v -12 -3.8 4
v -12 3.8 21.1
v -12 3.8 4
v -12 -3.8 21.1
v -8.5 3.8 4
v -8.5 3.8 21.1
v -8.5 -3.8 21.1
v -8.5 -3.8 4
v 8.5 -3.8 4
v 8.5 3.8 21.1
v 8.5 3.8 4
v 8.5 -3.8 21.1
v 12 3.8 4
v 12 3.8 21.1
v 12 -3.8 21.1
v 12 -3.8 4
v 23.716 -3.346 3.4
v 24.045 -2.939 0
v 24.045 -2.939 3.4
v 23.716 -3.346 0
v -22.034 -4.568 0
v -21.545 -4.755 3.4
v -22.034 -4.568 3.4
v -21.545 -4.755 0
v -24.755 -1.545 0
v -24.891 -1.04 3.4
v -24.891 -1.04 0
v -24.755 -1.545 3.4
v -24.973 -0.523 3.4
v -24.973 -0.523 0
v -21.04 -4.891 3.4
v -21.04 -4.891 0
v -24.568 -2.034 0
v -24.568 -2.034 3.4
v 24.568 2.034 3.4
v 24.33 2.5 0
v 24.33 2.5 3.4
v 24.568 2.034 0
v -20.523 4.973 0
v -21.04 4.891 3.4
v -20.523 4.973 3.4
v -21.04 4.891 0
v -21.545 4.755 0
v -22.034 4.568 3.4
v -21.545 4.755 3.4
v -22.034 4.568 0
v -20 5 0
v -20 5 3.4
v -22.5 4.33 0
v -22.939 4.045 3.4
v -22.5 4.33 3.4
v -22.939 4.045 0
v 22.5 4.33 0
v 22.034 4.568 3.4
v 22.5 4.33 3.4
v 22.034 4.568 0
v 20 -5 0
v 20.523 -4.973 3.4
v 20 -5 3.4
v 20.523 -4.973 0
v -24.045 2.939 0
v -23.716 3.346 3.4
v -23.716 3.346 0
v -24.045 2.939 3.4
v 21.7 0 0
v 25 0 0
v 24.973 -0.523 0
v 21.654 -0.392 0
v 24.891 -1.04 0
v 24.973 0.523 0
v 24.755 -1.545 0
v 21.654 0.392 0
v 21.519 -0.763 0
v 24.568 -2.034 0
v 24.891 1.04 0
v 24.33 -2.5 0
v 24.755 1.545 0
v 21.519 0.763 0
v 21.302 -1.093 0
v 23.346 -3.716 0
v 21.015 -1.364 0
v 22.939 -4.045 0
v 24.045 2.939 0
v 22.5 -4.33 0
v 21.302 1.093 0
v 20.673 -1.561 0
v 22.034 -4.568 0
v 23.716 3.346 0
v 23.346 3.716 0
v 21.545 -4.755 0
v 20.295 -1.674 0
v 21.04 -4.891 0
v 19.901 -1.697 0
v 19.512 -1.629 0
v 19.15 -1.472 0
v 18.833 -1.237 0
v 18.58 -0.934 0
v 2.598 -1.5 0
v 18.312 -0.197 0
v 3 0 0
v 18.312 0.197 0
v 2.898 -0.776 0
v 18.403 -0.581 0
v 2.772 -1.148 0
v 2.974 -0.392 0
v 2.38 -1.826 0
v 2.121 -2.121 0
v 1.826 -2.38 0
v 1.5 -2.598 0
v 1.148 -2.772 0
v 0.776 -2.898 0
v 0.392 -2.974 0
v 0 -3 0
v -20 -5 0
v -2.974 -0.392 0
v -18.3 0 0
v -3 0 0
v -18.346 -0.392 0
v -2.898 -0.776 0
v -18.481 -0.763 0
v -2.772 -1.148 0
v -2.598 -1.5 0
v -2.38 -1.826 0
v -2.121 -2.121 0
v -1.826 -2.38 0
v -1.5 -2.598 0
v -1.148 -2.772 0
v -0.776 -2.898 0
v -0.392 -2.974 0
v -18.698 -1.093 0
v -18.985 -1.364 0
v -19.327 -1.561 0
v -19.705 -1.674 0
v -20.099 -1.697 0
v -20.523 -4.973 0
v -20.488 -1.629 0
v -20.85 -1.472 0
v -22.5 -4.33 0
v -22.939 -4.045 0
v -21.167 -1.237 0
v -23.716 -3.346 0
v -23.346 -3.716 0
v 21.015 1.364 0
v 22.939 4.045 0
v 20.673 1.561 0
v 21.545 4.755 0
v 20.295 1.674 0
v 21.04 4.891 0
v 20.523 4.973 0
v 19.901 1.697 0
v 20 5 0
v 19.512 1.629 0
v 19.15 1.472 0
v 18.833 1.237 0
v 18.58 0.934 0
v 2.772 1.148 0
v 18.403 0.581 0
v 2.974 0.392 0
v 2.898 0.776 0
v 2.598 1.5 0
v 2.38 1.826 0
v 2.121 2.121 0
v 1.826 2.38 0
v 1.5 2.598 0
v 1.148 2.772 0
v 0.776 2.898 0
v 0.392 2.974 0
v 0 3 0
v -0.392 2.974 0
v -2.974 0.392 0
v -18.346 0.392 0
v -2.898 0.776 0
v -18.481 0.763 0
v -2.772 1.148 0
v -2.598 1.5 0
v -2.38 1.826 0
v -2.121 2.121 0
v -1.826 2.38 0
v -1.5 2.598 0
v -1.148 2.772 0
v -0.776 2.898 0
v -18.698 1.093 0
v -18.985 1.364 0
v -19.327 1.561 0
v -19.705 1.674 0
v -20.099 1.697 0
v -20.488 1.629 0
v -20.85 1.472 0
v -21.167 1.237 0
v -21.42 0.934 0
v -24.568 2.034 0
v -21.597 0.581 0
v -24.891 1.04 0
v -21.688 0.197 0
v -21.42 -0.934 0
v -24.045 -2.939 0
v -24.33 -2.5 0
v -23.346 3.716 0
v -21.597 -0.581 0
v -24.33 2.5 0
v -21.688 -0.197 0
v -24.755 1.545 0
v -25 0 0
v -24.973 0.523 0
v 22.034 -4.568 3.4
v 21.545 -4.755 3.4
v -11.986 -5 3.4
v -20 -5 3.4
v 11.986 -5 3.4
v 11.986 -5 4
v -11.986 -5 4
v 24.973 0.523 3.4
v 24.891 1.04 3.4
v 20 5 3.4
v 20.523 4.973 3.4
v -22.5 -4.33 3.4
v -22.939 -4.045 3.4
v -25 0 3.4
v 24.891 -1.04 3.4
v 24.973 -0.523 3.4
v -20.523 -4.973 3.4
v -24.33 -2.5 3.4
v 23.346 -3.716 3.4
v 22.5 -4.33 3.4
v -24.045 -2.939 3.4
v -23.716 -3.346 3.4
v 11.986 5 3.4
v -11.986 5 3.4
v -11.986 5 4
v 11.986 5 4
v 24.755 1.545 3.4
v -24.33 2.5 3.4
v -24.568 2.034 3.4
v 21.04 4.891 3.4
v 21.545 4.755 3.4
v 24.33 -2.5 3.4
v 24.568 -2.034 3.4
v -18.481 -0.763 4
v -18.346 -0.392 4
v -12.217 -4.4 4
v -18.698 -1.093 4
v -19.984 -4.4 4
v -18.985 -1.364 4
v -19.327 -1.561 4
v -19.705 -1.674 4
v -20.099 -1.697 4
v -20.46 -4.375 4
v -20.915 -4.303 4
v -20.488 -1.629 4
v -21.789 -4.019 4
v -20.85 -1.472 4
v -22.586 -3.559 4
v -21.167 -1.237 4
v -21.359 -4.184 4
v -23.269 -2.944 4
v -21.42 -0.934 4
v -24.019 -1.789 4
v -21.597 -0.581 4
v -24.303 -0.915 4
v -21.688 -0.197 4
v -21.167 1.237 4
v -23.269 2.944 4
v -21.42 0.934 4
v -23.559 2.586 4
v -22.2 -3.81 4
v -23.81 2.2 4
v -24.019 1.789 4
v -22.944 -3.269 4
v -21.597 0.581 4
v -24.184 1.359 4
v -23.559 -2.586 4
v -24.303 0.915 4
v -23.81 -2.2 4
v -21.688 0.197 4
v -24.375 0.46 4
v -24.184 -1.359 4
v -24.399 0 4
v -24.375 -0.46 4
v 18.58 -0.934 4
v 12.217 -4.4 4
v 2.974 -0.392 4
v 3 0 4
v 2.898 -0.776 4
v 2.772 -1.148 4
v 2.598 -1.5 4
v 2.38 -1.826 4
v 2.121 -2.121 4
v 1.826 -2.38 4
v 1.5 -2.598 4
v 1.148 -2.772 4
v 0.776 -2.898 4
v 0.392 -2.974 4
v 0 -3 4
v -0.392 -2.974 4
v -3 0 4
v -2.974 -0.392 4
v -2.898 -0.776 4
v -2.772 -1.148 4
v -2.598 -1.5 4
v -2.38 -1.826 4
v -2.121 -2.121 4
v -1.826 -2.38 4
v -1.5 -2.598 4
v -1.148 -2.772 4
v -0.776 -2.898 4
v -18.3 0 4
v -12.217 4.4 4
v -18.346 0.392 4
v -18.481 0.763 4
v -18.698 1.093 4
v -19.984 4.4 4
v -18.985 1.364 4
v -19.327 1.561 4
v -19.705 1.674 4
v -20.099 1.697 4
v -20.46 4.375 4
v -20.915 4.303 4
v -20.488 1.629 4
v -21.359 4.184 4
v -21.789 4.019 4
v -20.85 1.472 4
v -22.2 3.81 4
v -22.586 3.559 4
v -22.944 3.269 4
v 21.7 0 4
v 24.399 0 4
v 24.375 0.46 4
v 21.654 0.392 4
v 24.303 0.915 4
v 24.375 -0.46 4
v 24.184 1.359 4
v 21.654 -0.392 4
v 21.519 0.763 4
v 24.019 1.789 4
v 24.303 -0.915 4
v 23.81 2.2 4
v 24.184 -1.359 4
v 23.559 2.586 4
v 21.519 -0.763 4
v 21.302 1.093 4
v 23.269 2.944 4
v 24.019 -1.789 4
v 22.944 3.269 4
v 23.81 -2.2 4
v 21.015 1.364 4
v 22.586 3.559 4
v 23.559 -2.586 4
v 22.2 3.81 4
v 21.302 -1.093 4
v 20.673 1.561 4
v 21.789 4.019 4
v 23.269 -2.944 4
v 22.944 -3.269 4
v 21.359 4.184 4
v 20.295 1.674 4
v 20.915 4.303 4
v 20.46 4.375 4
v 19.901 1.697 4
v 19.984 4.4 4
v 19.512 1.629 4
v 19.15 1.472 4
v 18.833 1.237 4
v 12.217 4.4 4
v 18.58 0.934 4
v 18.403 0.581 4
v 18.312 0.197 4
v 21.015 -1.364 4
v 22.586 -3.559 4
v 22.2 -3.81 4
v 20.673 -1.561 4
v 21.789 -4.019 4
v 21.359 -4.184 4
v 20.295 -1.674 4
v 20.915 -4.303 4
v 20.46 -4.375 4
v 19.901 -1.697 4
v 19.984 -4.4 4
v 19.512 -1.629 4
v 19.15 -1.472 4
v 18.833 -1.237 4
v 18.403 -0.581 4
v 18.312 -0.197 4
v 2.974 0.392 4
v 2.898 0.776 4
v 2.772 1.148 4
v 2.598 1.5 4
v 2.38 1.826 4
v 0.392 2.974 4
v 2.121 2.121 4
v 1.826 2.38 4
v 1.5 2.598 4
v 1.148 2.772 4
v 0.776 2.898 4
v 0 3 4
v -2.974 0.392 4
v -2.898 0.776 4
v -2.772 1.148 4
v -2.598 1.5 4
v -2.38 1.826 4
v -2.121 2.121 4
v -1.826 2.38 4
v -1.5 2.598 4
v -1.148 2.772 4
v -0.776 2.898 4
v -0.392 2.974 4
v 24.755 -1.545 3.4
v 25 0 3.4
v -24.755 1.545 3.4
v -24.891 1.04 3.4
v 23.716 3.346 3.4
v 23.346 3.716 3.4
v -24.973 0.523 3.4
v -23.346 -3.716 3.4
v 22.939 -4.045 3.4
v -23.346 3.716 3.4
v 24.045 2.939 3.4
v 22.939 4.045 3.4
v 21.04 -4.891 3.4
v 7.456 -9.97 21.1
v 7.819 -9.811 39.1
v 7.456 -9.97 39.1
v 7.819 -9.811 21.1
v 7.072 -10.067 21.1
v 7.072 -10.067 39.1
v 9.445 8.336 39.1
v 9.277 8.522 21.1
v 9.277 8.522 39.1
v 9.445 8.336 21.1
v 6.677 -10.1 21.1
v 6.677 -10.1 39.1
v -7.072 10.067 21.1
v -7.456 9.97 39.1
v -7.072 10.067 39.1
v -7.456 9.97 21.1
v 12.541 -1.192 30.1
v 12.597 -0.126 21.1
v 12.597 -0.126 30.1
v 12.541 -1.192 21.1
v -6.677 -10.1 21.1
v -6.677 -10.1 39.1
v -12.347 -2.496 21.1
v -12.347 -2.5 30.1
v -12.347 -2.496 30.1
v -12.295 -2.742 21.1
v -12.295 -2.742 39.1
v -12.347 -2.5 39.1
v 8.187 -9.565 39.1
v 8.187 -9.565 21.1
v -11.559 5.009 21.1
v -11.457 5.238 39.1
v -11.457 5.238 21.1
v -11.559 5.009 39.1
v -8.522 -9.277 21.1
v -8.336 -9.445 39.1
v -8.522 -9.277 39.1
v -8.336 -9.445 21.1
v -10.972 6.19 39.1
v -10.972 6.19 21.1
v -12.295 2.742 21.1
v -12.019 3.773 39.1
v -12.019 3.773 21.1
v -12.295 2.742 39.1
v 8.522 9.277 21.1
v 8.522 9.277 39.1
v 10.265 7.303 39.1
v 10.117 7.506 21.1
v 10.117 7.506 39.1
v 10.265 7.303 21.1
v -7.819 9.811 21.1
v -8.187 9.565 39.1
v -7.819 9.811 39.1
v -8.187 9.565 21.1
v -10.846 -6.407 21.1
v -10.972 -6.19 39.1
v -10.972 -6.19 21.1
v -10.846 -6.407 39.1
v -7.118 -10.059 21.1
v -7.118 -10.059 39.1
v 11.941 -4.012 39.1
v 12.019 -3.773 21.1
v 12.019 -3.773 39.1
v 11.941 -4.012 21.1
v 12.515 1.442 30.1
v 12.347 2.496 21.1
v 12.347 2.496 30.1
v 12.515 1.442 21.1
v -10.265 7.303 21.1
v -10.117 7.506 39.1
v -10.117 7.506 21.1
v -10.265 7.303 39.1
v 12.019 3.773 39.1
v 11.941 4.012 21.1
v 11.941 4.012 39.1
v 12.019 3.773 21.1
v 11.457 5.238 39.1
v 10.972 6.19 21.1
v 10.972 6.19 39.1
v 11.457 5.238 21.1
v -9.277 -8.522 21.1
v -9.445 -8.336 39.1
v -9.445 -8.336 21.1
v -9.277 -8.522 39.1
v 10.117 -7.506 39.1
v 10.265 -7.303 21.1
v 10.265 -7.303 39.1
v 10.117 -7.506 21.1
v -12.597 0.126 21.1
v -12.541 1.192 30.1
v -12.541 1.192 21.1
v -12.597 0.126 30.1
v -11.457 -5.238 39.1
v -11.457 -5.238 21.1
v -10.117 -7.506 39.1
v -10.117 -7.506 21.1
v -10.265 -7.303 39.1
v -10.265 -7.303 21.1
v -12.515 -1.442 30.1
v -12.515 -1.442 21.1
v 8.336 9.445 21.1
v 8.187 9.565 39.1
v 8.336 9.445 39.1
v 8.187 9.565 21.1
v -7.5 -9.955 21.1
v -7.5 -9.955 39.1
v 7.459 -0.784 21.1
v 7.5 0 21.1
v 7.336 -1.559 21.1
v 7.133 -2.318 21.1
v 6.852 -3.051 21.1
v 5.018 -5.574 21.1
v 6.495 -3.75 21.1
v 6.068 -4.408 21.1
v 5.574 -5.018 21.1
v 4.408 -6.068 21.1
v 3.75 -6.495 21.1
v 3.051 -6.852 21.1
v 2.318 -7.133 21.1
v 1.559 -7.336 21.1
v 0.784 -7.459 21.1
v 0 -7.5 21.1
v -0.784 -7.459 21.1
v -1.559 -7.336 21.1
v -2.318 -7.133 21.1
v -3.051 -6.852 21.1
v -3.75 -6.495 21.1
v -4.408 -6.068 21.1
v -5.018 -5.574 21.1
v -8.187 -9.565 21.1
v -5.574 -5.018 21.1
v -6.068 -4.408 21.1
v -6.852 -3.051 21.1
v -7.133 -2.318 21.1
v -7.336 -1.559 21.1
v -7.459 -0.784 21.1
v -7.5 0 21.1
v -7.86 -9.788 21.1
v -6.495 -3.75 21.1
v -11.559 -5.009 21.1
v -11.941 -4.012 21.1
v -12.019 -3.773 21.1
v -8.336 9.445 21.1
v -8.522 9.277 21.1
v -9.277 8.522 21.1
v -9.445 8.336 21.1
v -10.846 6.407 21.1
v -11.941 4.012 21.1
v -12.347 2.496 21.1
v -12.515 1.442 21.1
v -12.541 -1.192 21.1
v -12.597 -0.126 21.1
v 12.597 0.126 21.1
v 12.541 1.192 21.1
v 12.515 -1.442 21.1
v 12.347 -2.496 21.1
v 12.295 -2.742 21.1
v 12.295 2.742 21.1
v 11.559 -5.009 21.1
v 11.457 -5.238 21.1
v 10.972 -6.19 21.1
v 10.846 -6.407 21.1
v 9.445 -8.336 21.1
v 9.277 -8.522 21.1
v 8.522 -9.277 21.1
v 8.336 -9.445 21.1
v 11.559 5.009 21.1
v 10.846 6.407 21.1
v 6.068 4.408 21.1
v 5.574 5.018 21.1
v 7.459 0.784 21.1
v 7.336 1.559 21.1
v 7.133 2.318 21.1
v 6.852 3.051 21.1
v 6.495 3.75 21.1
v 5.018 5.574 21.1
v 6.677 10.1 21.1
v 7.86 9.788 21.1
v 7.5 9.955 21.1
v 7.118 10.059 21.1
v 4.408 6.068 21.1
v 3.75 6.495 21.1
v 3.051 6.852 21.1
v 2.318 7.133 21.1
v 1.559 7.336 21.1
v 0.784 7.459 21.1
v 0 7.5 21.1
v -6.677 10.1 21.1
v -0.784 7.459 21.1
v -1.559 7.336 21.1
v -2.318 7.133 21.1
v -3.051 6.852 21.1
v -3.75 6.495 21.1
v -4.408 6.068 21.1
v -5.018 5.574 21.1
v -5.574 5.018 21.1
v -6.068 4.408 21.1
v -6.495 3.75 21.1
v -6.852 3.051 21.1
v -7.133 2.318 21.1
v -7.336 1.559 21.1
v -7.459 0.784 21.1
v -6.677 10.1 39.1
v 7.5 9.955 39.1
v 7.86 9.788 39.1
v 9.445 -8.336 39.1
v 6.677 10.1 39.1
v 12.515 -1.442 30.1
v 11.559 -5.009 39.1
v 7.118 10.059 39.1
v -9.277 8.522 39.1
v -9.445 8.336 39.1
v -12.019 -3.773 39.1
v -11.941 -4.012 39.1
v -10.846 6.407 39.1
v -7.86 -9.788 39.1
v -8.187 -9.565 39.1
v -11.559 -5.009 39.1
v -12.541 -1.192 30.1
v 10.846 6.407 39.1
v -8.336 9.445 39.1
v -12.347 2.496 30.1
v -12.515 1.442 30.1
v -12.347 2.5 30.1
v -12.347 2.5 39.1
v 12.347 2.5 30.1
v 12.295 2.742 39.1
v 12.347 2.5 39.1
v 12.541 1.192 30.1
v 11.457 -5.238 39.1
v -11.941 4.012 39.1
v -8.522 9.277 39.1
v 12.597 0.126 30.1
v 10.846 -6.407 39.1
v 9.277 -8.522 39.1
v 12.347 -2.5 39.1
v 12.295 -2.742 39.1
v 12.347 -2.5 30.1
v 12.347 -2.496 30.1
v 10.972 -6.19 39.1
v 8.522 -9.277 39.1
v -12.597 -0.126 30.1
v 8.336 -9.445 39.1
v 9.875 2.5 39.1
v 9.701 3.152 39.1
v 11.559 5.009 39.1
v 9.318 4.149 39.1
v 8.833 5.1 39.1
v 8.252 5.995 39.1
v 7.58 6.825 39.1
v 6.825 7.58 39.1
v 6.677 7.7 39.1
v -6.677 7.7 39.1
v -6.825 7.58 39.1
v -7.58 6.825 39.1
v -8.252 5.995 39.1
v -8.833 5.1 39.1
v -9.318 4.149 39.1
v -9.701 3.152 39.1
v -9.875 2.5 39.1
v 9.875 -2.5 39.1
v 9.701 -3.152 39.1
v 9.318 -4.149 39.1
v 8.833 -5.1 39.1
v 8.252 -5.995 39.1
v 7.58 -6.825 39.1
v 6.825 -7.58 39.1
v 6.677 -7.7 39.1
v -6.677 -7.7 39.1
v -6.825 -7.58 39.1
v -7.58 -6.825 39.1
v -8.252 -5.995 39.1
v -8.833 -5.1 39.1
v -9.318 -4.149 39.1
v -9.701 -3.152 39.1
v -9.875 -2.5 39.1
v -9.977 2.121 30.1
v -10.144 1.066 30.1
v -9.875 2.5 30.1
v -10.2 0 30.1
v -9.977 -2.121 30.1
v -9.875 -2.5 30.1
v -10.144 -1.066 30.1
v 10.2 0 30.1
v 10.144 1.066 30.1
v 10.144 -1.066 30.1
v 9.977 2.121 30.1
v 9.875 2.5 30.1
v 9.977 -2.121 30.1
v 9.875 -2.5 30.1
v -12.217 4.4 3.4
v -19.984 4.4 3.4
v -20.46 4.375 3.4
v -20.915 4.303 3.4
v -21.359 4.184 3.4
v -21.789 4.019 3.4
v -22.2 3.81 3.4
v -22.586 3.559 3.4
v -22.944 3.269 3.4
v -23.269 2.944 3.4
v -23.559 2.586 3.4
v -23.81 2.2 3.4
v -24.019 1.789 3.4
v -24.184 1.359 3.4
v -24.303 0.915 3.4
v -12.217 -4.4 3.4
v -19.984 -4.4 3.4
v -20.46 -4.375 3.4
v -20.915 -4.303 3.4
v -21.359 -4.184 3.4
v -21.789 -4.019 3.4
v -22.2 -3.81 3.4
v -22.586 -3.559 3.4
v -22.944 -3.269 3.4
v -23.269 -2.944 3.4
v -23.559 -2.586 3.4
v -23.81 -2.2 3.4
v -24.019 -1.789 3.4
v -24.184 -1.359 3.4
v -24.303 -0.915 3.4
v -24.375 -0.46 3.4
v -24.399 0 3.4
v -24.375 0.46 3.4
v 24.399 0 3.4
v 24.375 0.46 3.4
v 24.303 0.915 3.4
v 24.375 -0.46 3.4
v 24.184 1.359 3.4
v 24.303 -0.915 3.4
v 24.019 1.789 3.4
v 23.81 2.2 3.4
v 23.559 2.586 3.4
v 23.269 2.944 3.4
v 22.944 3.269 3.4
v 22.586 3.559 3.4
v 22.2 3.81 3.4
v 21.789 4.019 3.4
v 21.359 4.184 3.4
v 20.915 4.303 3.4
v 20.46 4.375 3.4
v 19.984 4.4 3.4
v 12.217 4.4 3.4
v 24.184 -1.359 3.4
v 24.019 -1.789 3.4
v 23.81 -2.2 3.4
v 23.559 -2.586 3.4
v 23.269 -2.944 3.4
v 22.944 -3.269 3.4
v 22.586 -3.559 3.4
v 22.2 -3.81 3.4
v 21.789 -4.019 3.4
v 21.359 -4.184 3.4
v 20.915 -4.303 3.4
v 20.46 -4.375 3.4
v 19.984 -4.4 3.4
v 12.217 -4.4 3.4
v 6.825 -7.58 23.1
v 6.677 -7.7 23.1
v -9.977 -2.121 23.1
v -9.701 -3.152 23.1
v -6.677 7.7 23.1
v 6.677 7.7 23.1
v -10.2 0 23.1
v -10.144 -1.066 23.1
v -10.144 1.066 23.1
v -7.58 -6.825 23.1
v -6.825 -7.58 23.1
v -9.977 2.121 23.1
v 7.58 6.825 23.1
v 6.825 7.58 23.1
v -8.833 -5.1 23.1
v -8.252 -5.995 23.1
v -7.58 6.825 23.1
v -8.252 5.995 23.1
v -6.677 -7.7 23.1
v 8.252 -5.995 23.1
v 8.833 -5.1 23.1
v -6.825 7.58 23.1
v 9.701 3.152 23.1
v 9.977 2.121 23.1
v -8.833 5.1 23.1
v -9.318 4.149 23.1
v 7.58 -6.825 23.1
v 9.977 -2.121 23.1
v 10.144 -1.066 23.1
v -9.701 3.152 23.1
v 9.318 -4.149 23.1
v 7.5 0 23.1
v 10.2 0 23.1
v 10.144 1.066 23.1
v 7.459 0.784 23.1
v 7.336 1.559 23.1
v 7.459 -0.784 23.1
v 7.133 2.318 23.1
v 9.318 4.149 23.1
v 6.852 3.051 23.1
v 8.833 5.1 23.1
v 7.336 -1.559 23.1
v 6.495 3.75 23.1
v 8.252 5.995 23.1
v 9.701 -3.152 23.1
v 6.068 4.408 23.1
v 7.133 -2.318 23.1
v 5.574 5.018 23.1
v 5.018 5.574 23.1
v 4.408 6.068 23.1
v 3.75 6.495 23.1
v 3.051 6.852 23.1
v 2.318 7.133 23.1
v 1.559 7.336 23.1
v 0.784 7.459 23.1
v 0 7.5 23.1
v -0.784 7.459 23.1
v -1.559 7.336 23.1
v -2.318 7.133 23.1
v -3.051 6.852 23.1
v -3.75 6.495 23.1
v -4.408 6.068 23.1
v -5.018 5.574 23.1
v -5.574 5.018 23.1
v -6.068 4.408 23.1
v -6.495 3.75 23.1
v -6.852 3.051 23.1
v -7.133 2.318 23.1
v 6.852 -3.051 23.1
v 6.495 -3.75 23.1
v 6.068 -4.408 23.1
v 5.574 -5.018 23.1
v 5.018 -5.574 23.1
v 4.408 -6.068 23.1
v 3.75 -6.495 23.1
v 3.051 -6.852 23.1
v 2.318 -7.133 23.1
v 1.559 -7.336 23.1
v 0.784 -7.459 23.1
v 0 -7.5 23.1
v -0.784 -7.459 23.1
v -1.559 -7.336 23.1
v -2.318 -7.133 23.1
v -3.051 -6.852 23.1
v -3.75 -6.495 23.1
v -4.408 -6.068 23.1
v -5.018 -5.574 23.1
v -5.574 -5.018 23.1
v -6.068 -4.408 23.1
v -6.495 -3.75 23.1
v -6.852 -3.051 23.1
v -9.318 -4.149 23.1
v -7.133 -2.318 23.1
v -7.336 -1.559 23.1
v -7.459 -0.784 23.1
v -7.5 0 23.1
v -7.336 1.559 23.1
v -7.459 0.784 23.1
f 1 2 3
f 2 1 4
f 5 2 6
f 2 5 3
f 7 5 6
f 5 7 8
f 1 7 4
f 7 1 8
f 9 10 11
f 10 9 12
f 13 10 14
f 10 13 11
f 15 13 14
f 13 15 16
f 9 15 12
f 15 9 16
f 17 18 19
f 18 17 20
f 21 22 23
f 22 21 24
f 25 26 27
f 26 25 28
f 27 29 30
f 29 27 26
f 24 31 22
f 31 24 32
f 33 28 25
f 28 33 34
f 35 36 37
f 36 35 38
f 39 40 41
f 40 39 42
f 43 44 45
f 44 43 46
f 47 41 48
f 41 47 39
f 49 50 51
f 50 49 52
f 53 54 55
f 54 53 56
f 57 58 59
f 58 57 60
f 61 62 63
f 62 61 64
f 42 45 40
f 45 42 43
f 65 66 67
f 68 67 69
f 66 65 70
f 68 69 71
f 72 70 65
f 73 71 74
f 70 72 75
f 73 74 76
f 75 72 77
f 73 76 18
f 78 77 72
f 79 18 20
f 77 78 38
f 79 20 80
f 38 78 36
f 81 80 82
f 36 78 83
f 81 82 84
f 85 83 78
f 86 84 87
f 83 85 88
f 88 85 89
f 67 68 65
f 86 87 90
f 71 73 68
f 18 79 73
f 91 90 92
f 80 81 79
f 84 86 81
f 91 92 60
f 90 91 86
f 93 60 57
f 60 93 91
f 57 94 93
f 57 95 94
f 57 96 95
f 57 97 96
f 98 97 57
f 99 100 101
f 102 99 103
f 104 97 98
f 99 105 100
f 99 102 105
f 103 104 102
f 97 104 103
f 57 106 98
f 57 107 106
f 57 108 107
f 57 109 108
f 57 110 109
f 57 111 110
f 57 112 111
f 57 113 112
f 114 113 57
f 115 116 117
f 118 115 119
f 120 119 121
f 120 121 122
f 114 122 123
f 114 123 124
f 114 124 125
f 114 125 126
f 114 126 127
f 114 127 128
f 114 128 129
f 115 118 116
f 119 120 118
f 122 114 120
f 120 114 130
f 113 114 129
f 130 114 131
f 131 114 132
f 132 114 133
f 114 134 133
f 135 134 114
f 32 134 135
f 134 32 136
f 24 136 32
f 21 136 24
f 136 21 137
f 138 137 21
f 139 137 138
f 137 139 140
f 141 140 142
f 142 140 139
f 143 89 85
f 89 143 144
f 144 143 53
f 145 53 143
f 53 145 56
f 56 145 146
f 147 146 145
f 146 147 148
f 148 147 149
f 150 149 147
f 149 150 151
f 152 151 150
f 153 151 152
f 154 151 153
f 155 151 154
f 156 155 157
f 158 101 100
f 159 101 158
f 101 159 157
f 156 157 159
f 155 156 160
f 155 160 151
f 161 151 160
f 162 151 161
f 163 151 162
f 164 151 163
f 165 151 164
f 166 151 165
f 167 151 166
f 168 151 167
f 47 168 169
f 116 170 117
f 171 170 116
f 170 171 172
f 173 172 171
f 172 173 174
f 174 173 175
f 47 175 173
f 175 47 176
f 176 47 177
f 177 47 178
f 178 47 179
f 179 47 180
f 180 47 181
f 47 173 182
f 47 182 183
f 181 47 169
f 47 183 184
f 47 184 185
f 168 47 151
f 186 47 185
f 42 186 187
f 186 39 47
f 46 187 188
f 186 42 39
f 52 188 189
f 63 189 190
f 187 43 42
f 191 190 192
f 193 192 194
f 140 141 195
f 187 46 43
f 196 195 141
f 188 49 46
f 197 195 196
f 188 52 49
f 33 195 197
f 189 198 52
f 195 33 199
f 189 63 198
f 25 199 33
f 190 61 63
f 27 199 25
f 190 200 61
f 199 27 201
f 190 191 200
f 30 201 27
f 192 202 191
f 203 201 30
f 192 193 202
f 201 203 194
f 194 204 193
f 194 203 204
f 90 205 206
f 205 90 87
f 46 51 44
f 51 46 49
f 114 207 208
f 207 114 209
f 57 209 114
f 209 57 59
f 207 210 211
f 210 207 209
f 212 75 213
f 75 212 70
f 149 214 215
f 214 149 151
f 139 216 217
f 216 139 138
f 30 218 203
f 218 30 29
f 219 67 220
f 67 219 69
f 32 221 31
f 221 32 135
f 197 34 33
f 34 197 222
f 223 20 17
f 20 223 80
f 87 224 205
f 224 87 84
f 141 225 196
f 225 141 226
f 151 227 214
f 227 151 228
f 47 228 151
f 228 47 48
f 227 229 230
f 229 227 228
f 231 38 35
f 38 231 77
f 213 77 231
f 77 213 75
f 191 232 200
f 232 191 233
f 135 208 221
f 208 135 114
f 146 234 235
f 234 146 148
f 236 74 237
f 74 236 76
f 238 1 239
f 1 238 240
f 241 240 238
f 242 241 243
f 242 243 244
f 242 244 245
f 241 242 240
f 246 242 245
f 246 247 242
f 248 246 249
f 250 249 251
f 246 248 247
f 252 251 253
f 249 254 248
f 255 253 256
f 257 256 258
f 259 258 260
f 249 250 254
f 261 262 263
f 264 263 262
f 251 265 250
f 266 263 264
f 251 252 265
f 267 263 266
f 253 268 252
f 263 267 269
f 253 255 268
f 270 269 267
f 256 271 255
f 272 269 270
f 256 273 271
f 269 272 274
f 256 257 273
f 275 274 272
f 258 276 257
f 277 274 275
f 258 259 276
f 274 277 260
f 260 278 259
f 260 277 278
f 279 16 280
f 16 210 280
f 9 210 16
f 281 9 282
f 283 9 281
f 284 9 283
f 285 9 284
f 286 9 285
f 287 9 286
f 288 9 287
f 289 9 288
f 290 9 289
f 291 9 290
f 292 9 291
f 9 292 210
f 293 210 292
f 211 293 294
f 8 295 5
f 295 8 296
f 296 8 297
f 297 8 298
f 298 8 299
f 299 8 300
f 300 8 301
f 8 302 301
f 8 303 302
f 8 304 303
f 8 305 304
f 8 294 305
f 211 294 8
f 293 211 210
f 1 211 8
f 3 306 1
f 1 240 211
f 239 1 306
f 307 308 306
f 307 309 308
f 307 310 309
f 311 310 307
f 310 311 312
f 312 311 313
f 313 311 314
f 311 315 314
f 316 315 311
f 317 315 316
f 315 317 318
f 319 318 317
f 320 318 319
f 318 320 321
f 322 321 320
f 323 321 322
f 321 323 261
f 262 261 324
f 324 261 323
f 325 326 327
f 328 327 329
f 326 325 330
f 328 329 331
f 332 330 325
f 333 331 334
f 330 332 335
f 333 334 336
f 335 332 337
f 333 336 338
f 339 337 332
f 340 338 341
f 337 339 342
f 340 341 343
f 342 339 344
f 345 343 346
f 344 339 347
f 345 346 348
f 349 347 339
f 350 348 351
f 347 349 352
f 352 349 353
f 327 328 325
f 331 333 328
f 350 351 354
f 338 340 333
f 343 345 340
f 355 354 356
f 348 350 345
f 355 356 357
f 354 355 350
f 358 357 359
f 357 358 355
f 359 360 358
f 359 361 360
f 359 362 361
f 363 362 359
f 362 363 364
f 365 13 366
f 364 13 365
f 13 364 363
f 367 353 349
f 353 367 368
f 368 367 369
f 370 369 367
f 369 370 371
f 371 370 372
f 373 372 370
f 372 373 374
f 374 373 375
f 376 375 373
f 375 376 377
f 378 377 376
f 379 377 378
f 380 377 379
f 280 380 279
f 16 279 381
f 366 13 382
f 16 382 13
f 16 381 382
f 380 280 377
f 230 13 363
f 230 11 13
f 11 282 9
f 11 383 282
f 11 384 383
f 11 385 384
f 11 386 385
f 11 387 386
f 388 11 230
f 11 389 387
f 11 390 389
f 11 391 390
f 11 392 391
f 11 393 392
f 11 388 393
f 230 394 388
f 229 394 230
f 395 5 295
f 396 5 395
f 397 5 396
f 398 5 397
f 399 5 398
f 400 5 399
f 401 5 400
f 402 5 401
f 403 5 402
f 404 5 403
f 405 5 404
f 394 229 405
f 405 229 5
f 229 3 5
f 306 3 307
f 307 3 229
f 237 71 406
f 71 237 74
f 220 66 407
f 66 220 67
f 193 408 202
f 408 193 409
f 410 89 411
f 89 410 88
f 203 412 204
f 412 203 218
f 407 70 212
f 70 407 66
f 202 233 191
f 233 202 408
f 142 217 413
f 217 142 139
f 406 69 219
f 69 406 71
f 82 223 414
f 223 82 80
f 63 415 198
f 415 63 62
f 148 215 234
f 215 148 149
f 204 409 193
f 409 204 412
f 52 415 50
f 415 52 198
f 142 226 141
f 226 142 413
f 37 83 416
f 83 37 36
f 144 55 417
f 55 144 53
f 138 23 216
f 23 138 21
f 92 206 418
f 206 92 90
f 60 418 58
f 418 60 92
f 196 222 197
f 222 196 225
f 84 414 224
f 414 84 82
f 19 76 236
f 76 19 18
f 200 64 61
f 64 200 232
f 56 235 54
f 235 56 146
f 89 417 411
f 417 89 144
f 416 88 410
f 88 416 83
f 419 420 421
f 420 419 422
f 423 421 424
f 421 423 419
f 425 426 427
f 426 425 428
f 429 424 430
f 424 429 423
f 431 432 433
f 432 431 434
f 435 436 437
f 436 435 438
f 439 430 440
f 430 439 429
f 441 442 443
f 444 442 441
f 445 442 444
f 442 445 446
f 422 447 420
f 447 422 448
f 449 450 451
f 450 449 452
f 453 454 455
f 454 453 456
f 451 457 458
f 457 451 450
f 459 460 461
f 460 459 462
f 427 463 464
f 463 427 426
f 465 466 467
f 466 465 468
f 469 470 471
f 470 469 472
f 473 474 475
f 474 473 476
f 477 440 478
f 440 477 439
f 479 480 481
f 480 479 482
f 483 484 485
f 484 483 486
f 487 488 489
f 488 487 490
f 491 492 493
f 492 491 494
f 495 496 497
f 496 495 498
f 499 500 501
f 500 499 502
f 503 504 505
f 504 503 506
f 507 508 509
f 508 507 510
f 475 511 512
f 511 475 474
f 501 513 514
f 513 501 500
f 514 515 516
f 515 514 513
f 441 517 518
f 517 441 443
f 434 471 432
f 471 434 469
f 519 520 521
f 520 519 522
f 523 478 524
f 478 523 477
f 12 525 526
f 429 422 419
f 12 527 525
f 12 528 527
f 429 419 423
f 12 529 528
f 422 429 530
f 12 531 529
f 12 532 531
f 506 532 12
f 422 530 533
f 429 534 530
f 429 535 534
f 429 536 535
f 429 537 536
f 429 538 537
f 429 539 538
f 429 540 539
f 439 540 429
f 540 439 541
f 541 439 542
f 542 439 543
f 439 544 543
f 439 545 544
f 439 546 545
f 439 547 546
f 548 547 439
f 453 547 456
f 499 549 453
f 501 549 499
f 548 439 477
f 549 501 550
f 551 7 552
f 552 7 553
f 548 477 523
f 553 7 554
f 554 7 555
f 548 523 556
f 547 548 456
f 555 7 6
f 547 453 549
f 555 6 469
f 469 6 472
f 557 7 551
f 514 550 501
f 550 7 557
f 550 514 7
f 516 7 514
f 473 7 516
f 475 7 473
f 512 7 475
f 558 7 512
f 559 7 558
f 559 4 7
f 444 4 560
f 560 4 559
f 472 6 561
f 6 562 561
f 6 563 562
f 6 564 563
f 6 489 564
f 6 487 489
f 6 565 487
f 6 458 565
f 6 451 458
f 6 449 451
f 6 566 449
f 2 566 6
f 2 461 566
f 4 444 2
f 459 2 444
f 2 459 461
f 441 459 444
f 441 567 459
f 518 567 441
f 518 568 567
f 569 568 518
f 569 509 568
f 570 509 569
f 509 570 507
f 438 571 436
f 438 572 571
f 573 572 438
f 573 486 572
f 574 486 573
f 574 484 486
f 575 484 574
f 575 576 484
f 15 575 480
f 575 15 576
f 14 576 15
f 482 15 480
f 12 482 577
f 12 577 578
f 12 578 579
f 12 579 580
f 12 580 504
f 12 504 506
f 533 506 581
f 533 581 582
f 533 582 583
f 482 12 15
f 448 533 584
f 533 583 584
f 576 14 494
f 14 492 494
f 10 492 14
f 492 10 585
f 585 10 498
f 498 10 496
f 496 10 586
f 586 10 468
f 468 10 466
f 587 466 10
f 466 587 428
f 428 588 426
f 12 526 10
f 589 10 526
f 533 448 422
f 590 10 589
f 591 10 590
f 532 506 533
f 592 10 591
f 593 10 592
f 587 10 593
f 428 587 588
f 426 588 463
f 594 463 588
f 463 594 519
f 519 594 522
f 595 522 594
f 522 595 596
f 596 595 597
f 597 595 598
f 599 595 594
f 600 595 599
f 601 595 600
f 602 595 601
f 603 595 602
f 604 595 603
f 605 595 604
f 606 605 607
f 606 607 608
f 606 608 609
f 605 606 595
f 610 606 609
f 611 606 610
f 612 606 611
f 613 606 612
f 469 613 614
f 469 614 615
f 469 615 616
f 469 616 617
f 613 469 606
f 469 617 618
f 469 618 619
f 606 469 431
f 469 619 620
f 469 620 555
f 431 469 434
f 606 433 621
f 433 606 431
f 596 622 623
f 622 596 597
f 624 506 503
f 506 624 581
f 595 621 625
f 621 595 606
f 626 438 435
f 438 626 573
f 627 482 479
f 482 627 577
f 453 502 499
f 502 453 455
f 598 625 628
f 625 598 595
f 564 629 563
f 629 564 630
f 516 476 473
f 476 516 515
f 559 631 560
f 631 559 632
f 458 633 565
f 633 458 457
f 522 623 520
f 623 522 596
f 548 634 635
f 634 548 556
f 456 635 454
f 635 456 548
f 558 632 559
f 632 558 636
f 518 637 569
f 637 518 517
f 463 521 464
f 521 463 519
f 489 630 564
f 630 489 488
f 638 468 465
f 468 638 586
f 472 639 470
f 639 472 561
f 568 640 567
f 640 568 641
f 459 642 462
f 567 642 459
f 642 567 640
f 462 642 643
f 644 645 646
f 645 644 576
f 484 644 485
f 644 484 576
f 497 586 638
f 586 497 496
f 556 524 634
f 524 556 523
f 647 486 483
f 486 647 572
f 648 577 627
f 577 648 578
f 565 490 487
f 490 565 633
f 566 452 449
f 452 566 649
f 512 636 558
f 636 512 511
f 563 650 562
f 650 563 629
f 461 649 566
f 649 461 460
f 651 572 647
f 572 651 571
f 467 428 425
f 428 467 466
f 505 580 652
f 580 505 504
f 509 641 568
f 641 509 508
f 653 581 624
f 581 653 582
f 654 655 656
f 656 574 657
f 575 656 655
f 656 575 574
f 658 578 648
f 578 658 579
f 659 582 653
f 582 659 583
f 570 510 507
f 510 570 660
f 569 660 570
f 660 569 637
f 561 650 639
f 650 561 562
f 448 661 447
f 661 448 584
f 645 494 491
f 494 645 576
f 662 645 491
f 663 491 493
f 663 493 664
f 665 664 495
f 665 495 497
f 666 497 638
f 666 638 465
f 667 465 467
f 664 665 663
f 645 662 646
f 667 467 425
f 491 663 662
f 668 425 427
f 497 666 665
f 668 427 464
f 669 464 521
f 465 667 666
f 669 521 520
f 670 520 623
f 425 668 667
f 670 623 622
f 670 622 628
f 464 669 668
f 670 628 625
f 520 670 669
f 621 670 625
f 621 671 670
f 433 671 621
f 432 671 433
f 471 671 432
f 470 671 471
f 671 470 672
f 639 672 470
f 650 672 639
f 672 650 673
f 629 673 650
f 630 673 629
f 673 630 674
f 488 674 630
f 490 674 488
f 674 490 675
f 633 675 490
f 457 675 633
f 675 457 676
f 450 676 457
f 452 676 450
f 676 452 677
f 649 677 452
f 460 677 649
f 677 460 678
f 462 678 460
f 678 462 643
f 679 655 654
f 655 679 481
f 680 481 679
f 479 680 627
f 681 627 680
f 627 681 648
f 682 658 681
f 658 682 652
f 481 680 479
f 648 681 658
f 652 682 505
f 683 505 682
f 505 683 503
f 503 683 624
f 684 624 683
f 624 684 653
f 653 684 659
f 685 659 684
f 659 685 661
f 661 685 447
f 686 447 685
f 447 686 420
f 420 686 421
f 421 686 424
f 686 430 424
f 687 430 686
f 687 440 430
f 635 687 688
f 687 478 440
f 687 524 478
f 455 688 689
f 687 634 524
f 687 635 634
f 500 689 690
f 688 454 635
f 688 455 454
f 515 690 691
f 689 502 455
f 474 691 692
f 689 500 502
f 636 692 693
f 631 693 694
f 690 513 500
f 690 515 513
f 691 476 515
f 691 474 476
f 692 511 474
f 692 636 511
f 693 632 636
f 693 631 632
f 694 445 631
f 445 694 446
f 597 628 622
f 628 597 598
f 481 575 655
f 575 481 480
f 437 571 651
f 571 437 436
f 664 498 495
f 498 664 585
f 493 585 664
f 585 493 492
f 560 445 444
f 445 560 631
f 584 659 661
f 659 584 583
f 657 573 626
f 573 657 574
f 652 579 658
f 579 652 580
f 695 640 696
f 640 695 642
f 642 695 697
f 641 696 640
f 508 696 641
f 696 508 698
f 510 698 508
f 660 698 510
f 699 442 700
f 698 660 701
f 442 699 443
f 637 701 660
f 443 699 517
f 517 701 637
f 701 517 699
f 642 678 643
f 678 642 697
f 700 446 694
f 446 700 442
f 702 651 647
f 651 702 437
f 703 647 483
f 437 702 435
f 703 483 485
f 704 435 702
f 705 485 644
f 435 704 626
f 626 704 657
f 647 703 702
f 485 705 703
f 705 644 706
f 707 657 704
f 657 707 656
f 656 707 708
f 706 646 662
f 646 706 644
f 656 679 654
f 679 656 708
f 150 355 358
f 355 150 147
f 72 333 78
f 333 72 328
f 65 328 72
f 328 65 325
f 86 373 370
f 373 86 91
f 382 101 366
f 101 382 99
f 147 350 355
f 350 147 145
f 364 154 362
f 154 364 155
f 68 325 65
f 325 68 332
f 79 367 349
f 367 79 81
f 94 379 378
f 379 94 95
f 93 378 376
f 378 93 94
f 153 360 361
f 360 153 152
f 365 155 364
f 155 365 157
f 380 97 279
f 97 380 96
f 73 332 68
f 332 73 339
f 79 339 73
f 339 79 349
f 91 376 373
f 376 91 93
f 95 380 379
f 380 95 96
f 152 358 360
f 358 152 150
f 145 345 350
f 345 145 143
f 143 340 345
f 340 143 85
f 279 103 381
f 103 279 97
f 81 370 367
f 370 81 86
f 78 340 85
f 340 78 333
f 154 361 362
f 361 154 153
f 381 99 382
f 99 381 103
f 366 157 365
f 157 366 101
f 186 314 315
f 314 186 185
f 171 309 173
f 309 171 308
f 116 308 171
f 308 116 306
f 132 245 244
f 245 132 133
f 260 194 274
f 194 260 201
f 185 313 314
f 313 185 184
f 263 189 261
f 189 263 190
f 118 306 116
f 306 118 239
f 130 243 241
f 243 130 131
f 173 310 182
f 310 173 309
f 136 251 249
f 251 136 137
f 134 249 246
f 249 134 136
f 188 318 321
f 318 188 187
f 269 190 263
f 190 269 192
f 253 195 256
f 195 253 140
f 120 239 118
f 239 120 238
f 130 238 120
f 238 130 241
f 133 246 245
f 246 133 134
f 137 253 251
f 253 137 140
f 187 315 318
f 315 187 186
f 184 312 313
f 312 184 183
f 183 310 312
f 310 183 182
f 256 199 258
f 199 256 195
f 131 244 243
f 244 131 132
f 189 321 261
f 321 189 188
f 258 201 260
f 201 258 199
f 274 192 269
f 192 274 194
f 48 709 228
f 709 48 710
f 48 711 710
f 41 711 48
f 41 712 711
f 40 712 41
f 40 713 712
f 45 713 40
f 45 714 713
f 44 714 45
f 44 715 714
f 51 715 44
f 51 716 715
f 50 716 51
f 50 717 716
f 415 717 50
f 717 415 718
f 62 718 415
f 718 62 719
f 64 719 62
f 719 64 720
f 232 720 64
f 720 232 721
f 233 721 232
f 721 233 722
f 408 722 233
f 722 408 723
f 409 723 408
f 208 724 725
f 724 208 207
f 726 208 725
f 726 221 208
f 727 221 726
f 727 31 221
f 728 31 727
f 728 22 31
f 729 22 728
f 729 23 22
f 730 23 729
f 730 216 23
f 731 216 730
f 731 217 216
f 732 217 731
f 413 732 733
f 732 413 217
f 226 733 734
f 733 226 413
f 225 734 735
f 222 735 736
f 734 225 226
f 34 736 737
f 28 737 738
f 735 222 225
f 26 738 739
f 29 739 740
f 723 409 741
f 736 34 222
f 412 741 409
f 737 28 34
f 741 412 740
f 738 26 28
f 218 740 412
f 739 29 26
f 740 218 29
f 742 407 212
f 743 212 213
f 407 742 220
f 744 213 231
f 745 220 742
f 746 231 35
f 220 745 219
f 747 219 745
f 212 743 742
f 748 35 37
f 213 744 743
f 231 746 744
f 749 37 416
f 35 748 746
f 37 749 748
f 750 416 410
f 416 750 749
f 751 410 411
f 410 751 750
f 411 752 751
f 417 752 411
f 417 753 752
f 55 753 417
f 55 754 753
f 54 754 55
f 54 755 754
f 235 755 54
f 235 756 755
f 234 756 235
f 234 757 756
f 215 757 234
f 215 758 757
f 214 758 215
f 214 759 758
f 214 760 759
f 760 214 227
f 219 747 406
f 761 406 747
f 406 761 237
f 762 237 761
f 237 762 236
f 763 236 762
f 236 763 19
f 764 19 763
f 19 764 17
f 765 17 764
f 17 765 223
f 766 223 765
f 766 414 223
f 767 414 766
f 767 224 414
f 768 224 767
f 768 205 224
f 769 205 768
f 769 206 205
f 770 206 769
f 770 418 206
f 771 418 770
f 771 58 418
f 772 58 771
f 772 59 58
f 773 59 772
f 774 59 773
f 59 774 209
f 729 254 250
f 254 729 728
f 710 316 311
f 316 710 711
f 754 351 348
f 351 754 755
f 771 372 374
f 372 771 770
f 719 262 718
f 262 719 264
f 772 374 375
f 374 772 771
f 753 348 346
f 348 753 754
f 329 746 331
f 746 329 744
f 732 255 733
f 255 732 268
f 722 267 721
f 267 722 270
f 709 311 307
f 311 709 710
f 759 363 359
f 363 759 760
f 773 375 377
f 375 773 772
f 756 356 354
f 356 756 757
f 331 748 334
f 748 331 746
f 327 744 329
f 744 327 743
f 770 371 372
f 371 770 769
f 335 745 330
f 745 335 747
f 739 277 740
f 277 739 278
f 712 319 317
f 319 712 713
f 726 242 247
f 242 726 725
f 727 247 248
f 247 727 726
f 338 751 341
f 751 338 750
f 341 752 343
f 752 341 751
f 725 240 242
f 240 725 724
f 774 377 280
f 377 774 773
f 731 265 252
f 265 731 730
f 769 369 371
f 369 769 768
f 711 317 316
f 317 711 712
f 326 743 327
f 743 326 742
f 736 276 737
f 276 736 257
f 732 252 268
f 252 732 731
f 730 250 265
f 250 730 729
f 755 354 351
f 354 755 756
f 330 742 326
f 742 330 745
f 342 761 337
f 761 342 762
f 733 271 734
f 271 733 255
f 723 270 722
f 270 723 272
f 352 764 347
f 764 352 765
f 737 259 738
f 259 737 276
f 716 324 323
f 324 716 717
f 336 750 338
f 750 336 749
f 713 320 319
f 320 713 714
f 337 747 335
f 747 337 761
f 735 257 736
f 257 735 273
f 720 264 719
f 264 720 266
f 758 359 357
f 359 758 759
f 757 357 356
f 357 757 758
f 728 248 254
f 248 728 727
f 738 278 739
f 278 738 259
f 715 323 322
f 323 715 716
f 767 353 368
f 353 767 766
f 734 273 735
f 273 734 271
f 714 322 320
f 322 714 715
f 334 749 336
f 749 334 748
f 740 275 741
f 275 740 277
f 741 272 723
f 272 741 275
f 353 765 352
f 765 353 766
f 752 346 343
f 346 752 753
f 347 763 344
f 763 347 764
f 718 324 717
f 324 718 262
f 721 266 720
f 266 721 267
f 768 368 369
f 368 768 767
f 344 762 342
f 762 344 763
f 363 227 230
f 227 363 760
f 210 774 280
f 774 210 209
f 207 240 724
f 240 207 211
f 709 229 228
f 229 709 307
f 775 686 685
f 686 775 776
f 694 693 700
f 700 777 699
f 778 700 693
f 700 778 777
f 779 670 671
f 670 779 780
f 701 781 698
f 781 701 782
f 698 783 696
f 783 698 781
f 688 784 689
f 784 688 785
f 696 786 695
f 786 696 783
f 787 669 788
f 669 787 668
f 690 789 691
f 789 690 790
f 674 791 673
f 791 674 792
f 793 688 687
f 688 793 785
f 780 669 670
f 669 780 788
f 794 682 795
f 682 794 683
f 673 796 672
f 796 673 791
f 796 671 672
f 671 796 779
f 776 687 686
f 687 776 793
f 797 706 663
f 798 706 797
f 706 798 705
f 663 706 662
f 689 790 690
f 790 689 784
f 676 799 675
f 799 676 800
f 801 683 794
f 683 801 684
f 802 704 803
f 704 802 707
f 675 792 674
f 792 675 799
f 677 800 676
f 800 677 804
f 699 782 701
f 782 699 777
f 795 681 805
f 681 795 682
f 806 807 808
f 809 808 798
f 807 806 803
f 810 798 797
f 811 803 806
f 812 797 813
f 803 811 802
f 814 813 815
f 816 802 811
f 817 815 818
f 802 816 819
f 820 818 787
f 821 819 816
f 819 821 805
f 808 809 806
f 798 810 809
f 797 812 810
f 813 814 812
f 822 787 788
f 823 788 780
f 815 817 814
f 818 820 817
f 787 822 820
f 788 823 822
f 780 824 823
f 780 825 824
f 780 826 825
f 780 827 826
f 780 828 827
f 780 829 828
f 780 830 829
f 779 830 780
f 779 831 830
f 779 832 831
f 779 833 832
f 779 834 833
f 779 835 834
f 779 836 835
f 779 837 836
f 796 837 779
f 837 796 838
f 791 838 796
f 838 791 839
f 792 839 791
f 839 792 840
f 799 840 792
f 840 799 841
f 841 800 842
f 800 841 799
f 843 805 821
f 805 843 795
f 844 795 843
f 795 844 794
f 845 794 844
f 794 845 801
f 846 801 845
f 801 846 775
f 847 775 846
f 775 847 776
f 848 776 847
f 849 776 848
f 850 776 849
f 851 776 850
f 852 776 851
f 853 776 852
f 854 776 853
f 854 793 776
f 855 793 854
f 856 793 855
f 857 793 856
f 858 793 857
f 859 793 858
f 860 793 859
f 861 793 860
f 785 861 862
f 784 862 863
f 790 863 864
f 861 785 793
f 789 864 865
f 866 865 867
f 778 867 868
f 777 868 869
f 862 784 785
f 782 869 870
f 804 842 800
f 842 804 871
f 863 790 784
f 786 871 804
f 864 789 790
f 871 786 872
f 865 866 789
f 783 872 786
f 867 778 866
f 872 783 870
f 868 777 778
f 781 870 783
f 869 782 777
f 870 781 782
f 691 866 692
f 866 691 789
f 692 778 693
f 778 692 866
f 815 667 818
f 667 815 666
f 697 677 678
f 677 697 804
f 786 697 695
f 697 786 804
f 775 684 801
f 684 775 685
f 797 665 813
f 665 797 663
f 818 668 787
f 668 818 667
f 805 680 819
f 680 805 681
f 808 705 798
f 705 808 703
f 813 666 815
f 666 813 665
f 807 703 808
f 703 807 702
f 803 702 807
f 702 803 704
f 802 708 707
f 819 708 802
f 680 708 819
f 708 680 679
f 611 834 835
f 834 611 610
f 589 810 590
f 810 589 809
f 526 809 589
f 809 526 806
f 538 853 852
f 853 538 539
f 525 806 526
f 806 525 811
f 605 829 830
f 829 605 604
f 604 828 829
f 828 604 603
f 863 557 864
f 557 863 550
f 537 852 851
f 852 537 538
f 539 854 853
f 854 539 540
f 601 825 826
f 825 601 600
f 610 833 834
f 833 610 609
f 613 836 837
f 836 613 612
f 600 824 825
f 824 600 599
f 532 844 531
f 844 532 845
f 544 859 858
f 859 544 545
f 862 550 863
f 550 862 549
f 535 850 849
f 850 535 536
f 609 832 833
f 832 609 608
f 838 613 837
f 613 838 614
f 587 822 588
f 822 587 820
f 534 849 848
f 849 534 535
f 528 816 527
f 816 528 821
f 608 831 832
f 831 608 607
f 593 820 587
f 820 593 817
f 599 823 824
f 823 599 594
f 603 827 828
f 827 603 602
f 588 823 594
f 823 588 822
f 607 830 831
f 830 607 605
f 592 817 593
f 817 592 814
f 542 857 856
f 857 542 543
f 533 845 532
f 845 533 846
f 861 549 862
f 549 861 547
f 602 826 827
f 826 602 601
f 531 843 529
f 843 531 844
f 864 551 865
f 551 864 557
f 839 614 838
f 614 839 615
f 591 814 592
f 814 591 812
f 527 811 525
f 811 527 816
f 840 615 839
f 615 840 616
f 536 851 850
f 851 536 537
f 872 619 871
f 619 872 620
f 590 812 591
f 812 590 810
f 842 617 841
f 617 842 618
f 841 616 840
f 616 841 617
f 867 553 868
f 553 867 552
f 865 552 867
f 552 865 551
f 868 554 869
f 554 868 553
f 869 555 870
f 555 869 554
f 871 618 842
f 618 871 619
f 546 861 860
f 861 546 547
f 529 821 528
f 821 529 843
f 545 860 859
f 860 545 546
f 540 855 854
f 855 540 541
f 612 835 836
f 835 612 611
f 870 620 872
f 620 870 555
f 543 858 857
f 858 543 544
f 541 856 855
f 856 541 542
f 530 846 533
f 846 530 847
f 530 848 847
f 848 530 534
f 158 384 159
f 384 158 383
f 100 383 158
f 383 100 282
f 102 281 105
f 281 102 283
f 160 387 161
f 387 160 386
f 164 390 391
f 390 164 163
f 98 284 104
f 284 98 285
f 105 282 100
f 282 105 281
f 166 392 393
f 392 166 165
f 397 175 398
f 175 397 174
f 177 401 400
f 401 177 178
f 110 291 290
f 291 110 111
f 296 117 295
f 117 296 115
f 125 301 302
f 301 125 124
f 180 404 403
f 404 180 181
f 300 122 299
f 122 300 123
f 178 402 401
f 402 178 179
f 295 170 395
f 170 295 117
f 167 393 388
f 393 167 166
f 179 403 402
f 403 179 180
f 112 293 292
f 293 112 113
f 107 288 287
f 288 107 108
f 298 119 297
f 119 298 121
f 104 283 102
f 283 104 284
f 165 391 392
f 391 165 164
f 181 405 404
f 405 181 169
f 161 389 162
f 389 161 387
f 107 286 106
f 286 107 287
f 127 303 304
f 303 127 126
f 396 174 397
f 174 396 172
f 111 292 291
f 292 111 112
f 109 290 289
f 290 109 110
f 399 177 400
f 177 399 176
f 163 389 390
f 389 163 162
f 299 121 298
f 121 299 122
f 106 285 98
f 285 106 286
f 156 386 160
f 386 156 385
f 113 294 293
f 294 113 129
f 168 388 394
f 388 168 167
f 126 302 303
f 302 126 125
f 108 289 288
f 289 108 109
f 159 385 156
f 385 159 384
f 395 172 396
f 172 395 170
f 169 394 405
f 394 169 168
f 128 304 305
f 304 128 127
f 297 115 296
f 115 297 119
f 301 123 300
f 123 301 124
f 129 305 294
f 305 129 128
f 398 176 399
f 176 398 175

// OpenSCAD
// file: ../../COMMON/stem_core.scad
// =====================================================================
//  stem_core.scad — shared geometry helpers for every STEM_KIT part.
// =====================================================================
include <../PARAMETERS/config.scad>
// =====================================================================

// ---------- rounded / chamfered prisms --------------------------------

// Rounded rectangle (2D), centred.
module rrect(size, r) {
    rr = min(r, min(size[0], size[1]) / 2 - 0.01);
    offset(r = rr) square([size[0] - 2 * rr, size[1] - 2 * rr], center = true);
}

// Box with rounded vertical edges, chamfered bottom edge (elephant-foot
// relief) and rounded-ish (chamfered) top edge. Sits on z = 0, centred XY.
module rbox(size, r = 2, top = edge_r, bottom = chamfer) {
    h = size[2];
    hull() {
        linear_extrude(0.01) rrect([size[0] - 2 * bottom, size[1] - 2 * bottom], max(r - bottom, 0.1));
        translate([0, 0, bottom]) linear_extrude(h - bottom - top) rrect([size[0], size[1]], r);
        translate([0, 0, h - 0.01]) linear_extrude(0.01) rrect([size[0] - 2 * top, size[1] - 2 * top], max(r - top, 0.1));
    }
}

// Cylinder with chamfered/rounded top and bottom edges (safe hubs, knobs).
module rcyl(d, h, top = edge_r, bottom = chamfer) {
    rotate_extrude() polygon([
        [0, 0], [d / 2 - bottom, 0], [d / 2, bottom],
        [d / 2, h - top], [d / 2 - top, h], [0, h]
    ]);
}

// Stadium (slot / rounded bar) 2D between two points on the X axis.
module stadium2d(len, w) {
    hull() { circle(d = w); translate([len, 0]) circle(d = w); }
}

// ---------- holes ------------------------------------------------------

// Vertical through hole with small top/bottom chamfers.
module vhole(d = grid_hole_d, h = 50, ch = 0.4) {
    translate([0, 0, -h / 2]) cylinder(d = d, h = h);
}

// Horizontal hole along +Y, printable without supports (teardrop tip up).
module teardrop_y(d, len, center = true) {
    translate([0, center ? -len / 2 : 0, 0]) rotate([-90, 0, 0])
        linear_extrude(len) teardrop2d(d);
}
module teardrop_x(d, len, center = true) {
    translate([center ? -len / 2 : 0, 0, 0]) rotate([0, 90, 0]) rotate([0, 0, -90])
        linear_extrude(len) teardrop2d(d);
}
// 2D teardrop: circle + 45° roof pointing "up" in the final part (+Z).
// After rotate([-90,0,0]) local +Y becomes -Z, so the roof points to -Y here.
module teardrop2d(d) {
    r = d / 2;
    union() {
        circle(d = d);
        polygon([[-r * sqrt(2) / 2, -r * sqrt(2) / 2], [0, -r * sqrt(2)], [r * sqrt(2) / 2, -r * sqrt(2) / 2]]);
    }
}

// Hex nut pocket (flat sides parallel to X), opening at z = 0 going +Z.
module nut_pocket(depth = nut_pocket_depth, af = nut_pocket_af) {
    cylinder(d = af / cos(30), h = depth, $fn = 6);
}

// Side-entry nut slot: nut plane is XY, slot opens toward +dir (X).
// Centred on the screw axis (Z), slot height nut_slot_t, runs out `len`.
module nut_slot_x(len = 10, af = nut_pocket_af, t = nut_slot_t) {
    translate([0, 0, -t / 2]) hull() {
        cylinder(d = af / cos(30), h = t, $fn = 6);
        translate([len, 0, 0]) cylinder(d = af / cos(30), h = t, $fn = 6);
    }
}

// Counterbored clearance hole from top surface at height `top` downward.
module cbore(top, depth, d = counterbore_d) {
    translate([0, 0, top - depth]) cylinder(d = d, h = depth + 20);
    translate([0, 0, -20]) cylinder(d = grid_hole_d, h = top + 40);
}

// Grid of vertical holes: nx x ny, pitch grid_pitch, first hole centred
// at `origin` (XY). Used by every plate.
module grid_holes(nx, ny, origin = [0, 0], h = 100, d = grid_hole_d) {
    for (i = [0 : nx - 1], j = [0 : ny - 1])
        translate([origin[0] + i * grid_pitch, origin[1] + j * grid_pitch, 0]) vhole(d, h);
}

// Slot (for adjustable mounting) along X, length = travel.
module slot_x(travel, d = grid_hole_d, h = 100) {
    translate([-travel / 2, 0, -h / 2]) linear_extrude(h) stadium2d(travel, d);
}

// ---------- shaft bores ------------------------------------------------

// 2D bore profile: round, or D if shaft_flat > 0.
module bore2d(d) {
    if (shaft_flat > 0)
        intersection() { circle(d = d); translate([-d, -d / 2]) square([2 * d, d - shaft_flat + (d - shaft_diameter) / 2]); }
    else circle(d = d);
}

// Standard HUB: cylinder hub_d x hub_h standing on z = z0, with bore,
// radial M3 set screw at mid height and a captive-nut slot from the top.
// Call inside difference() for the cut-outs: hub_body()/hub_cuts().
module hub_body(z0, d = hub_d, h = hub_h) {
    translate([0, 0, z0]) rcyl(d, h, top = 0.8, bottom = 0);
}
module hub_cuts(z0, total_h, d = hub_d, h = hub_h, bore = shaft_fixed_bore, set_screw = true, screw_angle = 0) {
    // bore through everything
    translate([0, 0, -1]) linear_extrude(total_h + 2) bore2d(bore);
    // entry chamfer on bore
    translate([0, 0, total_h - 0.6]) cylinder(d1 = bore, d2 = bore + 1.2, h = 0.61);
    translate([0, 0, -0.01]) cylinder(d1 = bore + 1.2, d2 = bore, h = 0.6);
    if (set_screw) rotate([0, 0, screw_angle]) {
        zs = z0 + h / 2;
        // radial screw hole (teardrop, prints without support)
        translate([0, 0, zs]) teardrop_x(screw_clear_d, d, center = false);
        // captive nut slot, entered from the hub top face
        nr = bore / 2 + (d / 2 - bore / 2) / 2;       // radial position of nut
        translate([nr - nut_slot_t / 2, -nut_pocket_af / 2, zs - nut_pocket_af / cos(30) / 2 - 0.1])
            cube([nut_slot_t, nut_pocket_af, total_h + 10]);   // open to the hub top face
    }
}

// ---------- labels -----------------------------------------------------

// Engrave text into a top surface at height z (depth 0.6 = 3 layers).
module engrave(txt, size = 5, z = 0, depth = 0.6, halign = "center") {
    translate([0, 0, z - depth]) linear_extrude(depth + 1)
        text(txt, size = size, font = "Liberation Sans:style=Bold", halign = halign, valign = "center");
}

// ---------- misc -------------------------------------------------------

function grid_snap(v) = ceil(v / grid_pitch) * grid_pitch;
// file: ../../PARAMETERS/config.scad
// =====================================================================
//  STEM_KIT — CENTRAL PARAMETER FILE  ("ForgeGrid" mechanical standard)
// ---------------------------------------------------------------------
//  Every part in the library includes this file. Change a value here,
//  run `python3 tools/build.py`, and the whole library regenerates.
//  All dimensions in millimetres.
// =====================================================================

// ---------------------------------------------------------------------
// 1. PRINTER / PROCESS
// ---------------------------------------------------------------------
nozzle          = 0.4;
layer_height    = 0.2;
tolerance       = 0.2;    // sliding clearance per side (tune with STEM_TOLERANCE_TEST)
press_allow     = 0.05;   // extra for press fits (bores that should grip)
min_wall        = 1.6;    // never go below this
wall_thickness  = 2.4;    // preferred wall (6 perimeters @ 0.4)
edge_r          = 1.0;    // rounding of exposed edges (child safety)
chamfer         = 0.6;    // bottom-edge chamfer (elephant-foot relief)

$fa = 6;                  // facet angle
$fs = 0.4;                // facet size

// ---------------------------------------------------------------------
// 2. GRID  (the heart of the ecosystem)
// ---------------------------------------------------------------------
//  Holes sit on a 10 mm lattice, 5 mm in from every plate edge, so
//  plates placed side by side keep one continuous lattice.
grid_pitch            = 10;
plate_size            = 100;   // universal base plate (square)
plate_thickness       = 6;     // base plates, rails, chassis
foot_thickness        = 4;     // flange / foot of every mount
//  => standard joint: 4 mm foot + 6 mm plate = M3 x 10 screw, nut in
//     the hex pocket under the plate. One screw length does 90 % of joints.

// ---------------------------------------------------------------------
// 3. FASTENERS (M3 everywhere: one screwdriver, one nut)
// ---------------------------------------------------------------------
screw_size            = 3;
screw_clear_d         = 3.4;   // clearance hole (also the grid hole)
grid_hole_d           = screw_clear_d;
screw_tap_d           = 2.6;   // hole a screw self-taps into
screw_head_d          = 5.7;   // ISO 7380 BUTTON head = kit standard (low, rounded, child-safe)
screw_head_h          = 1.65;
counterbore_d         = 6.4;
nut_af                = 5.5;   // M3 nut across flats
nut_thick             = 2.4;
nut_pocket_af         = nut_af + 0.35;
nut_pocket_depth      = 3.0;   // pocket under plates (nut sits flush)
nut_slot_t            = nut_thick + 0.4;  // side-entry slot thickness
set_screw_len         = 6;     // M3 x 6 grub screw for hubs

// ---------------------------------------------------------------------
// 4. SHAFTS
// ---------------------------------------------------------------------
//  Default: 3 mm steel rod (silver steel / stainless). Printed shafts
//  are provided for light-duty use. Alternative systems: set
//  shaft_diameter = 4 or 5 and rebuild.
shaft_diameter        = 3;
shaft_flat            = 0;     // >0 : D-shaft, flat depth (e.g. 0.5)
shaft_fixed_bore      = shaft_diameter + 0.15;  // hub bore (set-screw locked)
shaft_free_bore       = shaft_diameter + 0.4;   // free-spinning bore / bushing
shaft_lengths         = [40, 60, 80, 100, 120];

//  Horizontal shafts: all pillow blocks, motor mounts and axle mounts
//  put their axis at this height above the surface they are bolted to,
//  so any two of them on the grid are automatically coaxial/parallel.
axis_height           = 17;
axis_height_high      = 37;    // = axis_height + 2 pitches (pulleys, big wheels)

// ---------------------------------------------------------------------
// 5. BEARINGS
// ---------------------------------------------------------------------
bearing_size          = [5, 16, 5];   // 625 : bore, OD, width (default housing)
bearing_small         = [3, 10, 4];   // 623 : fits 3 mm shafts via adapter ring
bearing_pocket_d      = bearing_size[1] + 0.15;

// ---------------------------------------------------------------------
// 6. GEARS
// ---------------------------------------------------------------------
//  Module 2 + tooth counts that are multiples of 10  =>  centre distance
//  = (z1+z2) mm is ALWAYS a multiple of 10  =>  ANY two gears mesh when
//  their shafts sit in grid holes. (3-4-5 diagonals also work: 50 mm.)
gear_module           = 2;
gear_pressure_angle   = 20;
gear_width            = 6;
gear_backlash         = 0.30;  // total circular backlash per mesh
gear_clearance_k      = 0.25;  // root clearance = k * module
gear_teeth_set        = [10, 20, 30, 40];
//  Gearbox frame: two frame plates, outer faces 60 mm apart (on grid),
//  48 mm gap = three gear levels (A, M, B).
frame_gap             = 48;
hub_d                 = 14;
hub_h                 = 7;

// ---------------------------------------------------------------------
// 7. WHEELS / PULLEYS
// ---------------------------------------------------------------------
wheel_diameter        = 60;
wheel_width           = 10;
axle_diameter         = shaft_diameter;
oring_cs              = 3.0;    // O-ring cross-section used as tyre / belt
belt_cs               = 2.5;    // O-ring / round-belt cord for pulleys
pulley_sizes          = [20, 40, 60];  // effective (belt-line) diameters

// ---------------------------------------------------------------------
// 8. MOTORS (130-size toy / solar motor is the default)
// ---------------------------------------------------------------------
motor_size            = [20.2, 15.2, 25.2]; // body dia, across-flats, length
motor_d               = motor_size[0];
motor_flat            = motor_size[1];
motor_len             = motor_size[2];
motor_boss_d          = 6.2;
motor_boss_h          = 1.6;
motor_shaft_d         = 2.0;
motor_shaft_len       = 8.5;   // beyond boss
motor_shaft_bore      = 1.9;   // press fit onto 2 mm motor shaft

// ---------------------------------------------------------------------
// 9. SOLAR PANEL (bought, not printed) — frame is parametric
// ---------------------------------------------------------------------
solar_panel_size      = [110, 69, 3.0];  // 5 V 1 W epoxy panel (common)
solar_panel_clear     = 0.6;

// ---------------------------------------------------------------------
// 10. ELECTRONICS
// ---------------------------------------------------------------------
mounting_hole_spacing = grid_pitch;   // everything bolts to the grid
electronics_slot_w    = screw_clear_d;
led_hole_d            = 5.1;
buzzer_hole_d         = 12.2;

// ---------------------------------------------------------------------
// 11. SAFETY LIMITS (checked by tools/qc.py)
// ---------------------------------------------------------------------
max_part_voltage      = 12;    // nothing in this kit uses more
min_rim_thickness     = 2.0;   // blades/links: no edge thinner than this
finger_gap_max        = 6;     // guard openings smaller than a child's finger
// main file
// =====================================================================
//  PART: generator mount (axial motor mount) — DYNAMO/hand_generator
//  Holds a 130-size DC motor used as a GENERATOR with its shaft pointing
//  straight into a plate (motor axis ⟂ mounting face, on a grid hole).
//  Motor shaft → motor_coupler → 3 mm kit shaft → through the grid hole
//  → 10T pinion inside the gearbox. Open sides let children watch the
//  coupler spin and reach its set screw.
//  Bar foot 10 mm wide with holes at (±20, 0); turn the mount 90° to
//  use a vertical pair instead (bottom-row holes then sit flush with the
//  base plate, so the foot never hits it).
//  Print: foot on the bed. No supports (floor bridges between the legs).
// =====================================================================
include <../../PARAMETERS/config.scad>
use <../../COMMON/stem_core.scad>

generator_mount();

gm_floor_z = 21.1;            // bottom of the socket floor (coupler top is at 21.0)

module motor_section_y(c) {   // flats parallel to X (|y| limited)
    intersection() { circle(r = motor_d / 2 + c); square([motor_d + 4, motor_flat + 2 * c], center = true); }
}

module generator_mount() {
    t = foot_thickness;
    c = 0.1;                   // snug: motor is a push fit
    fz = gm_floor_z; ft = 2;   // floor
    sock = 16;                 // socket depth
    difference() {
        union() {
            // cross foot
            linear_extrude(t) stadium_c(2 * grid_pitch, grid_pitch);
            // two legs (±X)
            for (s = [-1, 1]) translate([s * 10.25, 0, t - 0.01]) linear_extrude(fz - t + 0.02) square([3.5, 7.6], center = true);
            // floor + socket
            translate([0, 0, fz]) linear_extrude(ft + sock) offset(r = wall_thickness) motor_section_y(c);
        }
        // socket pocket, floor hole (coupler passes through when fitting)
        translate([0, 0, fz + ft]) linear_extrude(sock + 1) motor_section_y(c);
        translate([0, 0, fz - 1]) cylinder(d = hub_d + 1, h = ft + 2);
        // wire exit slots in the socket rim
        for (s = [-1, 1]) translate([s * (motor_d / 2 + 1), 0, fz + ft + sock - 4]) cube([6, 5, 10], center = true);
        // shaft hole + mounting holes
        vhole(6, 20);
        for (p = [[20, 0], [-20, 0]]) translate([p[0], p[1], 0]) vhole(grid_hole_d, 20);
        // foot edge chamfer
        foot_chamfer(t);
    }
}
module stadium_c(half, w) { hull() { translate([-half, 0]) circle(d = w); translate([half, 0]) circle(d = w); } }
module foot_chamfer(t) {
    difference() {
        translate([-40, -40, t - 0.6]) cube([80, 80, 1]);
        translate([0, 0, t - 0.6]) linear_extrude(0.6, scale = 1) offset(delta = -0.6) stadium_c(2 * grid_pitch, grid_pitch);
        translate([0, 0, t - 0.7]) cylinder(r = 13, h = 2);
    }
}
